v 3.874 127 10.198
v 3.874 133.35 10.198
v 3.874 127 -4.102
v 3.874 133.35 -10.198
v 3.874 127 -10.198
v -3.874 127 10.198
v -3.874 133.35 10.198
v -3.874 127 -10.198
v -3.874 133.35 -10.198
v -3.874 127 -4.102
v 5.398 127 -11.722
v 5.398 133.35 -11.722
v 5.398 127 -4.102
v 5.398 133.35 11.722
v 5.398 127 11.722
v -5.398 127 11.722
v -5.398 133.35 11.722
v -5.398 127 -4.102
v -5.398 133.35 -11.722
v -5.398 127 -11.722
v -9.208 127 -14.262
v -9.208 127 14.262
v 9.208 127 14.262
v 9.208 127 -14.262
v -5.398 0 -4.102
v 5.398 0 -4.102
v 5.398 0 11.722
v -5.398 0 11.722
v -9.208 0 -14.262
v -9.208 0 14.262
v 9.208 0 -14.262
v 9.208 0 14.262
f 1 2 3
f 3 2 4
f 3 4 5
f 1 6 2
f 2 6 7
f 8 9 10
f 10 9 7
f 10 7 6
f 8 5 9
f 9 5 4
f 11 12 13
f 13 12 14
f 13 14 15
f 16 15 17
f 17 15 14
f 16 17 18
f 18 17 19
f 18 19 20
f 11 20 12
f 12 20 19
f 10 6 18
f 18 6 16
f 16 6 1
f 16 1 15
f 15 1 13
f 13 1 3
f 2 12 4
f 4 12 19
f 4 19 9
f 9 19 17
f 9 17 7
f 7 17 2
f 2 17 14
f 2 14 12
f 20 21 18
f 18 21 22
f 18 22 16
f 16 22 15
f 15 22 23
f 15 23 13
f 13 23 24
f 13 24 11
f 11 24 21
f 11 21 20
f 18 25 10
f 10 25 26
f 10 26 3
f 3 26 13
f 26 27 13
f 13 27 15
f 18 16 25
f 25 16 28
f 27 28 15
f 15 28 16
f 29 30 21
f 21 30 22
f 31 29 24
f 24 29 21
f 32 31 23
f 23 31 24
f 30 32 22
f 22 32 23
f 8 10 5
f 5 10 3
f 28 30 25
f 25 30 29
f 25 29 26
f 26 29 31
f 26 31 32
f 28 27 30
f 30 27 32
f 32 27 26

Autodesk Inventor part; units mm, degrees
ref_plane "YZ Plane" through (0, 0, 0) normal (1, 0, 0) x (0, 1, 0)
ref_plane "XZ Plane" through (0, 0, 0) normal (0, 1, 0) x (-1, 0, 0)
ref_plane "XY Plane" through (0, 0, 0) normal (0, 0, 1) x (1, 0, 0)
sketch "Sketch1" plane through (0, 0, 0) normal (0, 1, 0) x (-1, 0, 0)
  line L0 (5.3975, 11.7221) -> (-5.3975, 11.7221)
  line L1 (-5.3975, 11.7221) -> (-5.3975, -11.7221)
  line L2 (-5.3975, -11.7221) -> (5.3975, -11.7221)
  line L3 (5.3975, -11.7221) -> (5.3975, 11.7221)
  line L4 (5.3975, 11.7221) -> (-5.3975, -11.7221) construction
  line L5 (-5.3975, 11.7221) -> (5.3975, -11.7221) construction
  line L6 (9.2075, 14.2621) -> (-9.2075, 14.2621)
  line L7 (-9.2075, 14.2621) -> (-9.2075, -14.2621)
  line L8 (-9.2075, -14.2621) -> (9.2075, -14.2621)
  line L9 (9.2075, -14.2621) -> (9.2075, 14.2621)
  line L10 (9.2075, 14.2621) -> (-9.2075, -14.2621) construction
  line L11 (-9.2075, 14.2621) -> (9.2075, -14.2621) construction
  point P0 (0, 0)
  dimension "d0" = 10.795
  dimension "d1" = 23.4442
  dimension "d2" = 18.415
  dimension "d3" = 28.5242
extrude "Extrusion1" add sketch "Sketch1" along normal blind 127
sketch "Sketch2" plane through (0, 127, 0) normal (0, 1, 0) x (1, 0, 0)
  point P0 (0, 0)
sketch "Sketch3" plane through (0, 0, 0) normal (0, -1, 0) x (1, 0, 0)
  line L0 (5.3975, 11.7221) -> (5.3975, -11.7221) projected
  line L1 (-5.3975, 11.7221) -> (-5.3975, -11.7221) projected
  line L2 (5.3975, -11.7221) -> (-5.3975, -11.7221)
  line L3 (-5.3975, -11.7221) -> (-5.3975, -4.1021)
  line L4 (-5.3975, -4.1021) -> (5.3975, -4.1021)
  line L5 (5.3975, -4.1021) -> (5.3975, -11.7221)
  point P0 (0, 0)
  dimension "d6" = 7.62
extrude "Extrusion2" add sketch "Sketch3" against normal blind 127
sketch "Sketch4" plane through (0, 127, 0) normal (0, 1, 0) x (1, 0, 0)
  line L0 (-5.3975, 11.7221) -> (5.3975, 11.7221)
  line L1 (5.3975, 11.7221) -> (5.3975, -11.7221)
  line L2 (5.3975, -11.7221) -> (-5.3975, -11.7221)
  line L3 (-5.3975, -11.7221) -> (-5.3975, 11.7221)
  line L4 (-5.3975, 11.7221) -> (5.3975, -11.7221) construction
  line L5 (5.3975, 11.7221) -> (-5.3975, -11.7221) construction
  line L6 (-3.8735, 10.1981) -> (3.8735, 10.1981)
  line L7 (3.8735, 10.1981) -> (3.8735, -10.1981)
  line L8 (3.8735, -10.1981) -> (-3.8735, -10.1981)
  line L9 (-3.8735, -10.1981) -> (-3.8735, 10.1981)
  line L10 (-3.8735, 10.1981) -> (3.8735, -10.1981) construction
  line L11 (3.8735, 10.1981) -> (-3.8735, -10.1981) construction
  point P0 (0, 0)
  dimension "d9" = 10.795
  dimension "d10" = 23.4442
  dimension "d11" = 7.747
  dimension "d12" = 20.3962
extrude "Extrusion3" add sketch "Sketch4" along normal blind 6.35
properties part number "Bacon2"
